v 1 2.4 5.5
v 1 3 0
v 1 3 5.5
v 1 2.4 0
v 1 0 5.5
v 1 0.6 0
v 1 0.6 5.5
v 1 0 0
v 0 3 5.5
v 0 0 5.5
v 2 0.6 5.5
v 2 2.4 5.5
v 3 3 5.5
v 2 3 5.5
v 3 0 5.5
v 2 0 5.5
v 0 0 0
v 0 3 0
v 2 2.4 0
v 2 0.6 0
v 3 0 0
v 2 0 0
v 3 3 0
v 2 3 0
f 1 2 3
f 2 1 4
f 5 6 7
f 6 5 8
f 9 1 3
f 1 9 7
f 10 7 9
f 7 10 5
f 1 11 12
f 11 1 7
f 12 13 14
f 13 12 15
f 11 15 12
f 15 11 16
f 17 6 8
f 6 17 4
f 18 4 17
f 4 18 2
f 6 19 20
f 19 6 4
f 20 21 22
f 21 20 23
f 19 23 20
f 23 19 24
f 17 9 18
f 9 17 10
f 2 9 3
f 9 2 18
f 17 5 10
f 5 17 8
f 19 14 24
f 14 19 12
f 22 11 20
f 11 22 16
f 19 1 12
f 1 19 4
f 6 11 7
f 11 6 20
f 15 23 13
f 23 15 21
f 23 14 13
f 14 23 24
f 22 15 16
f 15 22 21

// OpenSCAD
// file: ../lib/led-holder.scad
// SPDX-FileCopyrightText: 2022-2024 Rafael G. Martins <rafael@rafaelmartins.eng.br>
// SPDX-License-Identifier: CERN-OHL-S-2.0

module led_holder(height) {
    led_width = 1.8;
    led_length = 1;
    led_margin = 1;

    width_ = 3;
    length_ = 2 * led_margin + led_length;

    cube([led_margin, width_, height]);
    translate([led_margin, (width_ - led_width) / 2, 0])
        cube([led_length, led_width, height]);
    translate([length_ - led_margin, 0, 0])
        cube([led_margin, width_, height]);
}
// file: settings.scad
// SPDX-FileCopyrightText: 2022-2024 Rafael G. Martins <rafael@rafaelmartins.eng.br>
// SPDX-License-Identifier: CERN-OHL-S-2.0

thickness = 2;

pcb_width = 84.582;
pcb_length = 36.322;
pcb_screw1_x = 2.921;
pcb_screw1_y = pcb_length - 5.207 - 12.192;
pcb_screw2_x = pcb_screw1_x + 17.018;
pcb_screw2_y = pcb_screw1_y + 12.192;
pcb_screw3_x = pcb_screw2_x + 22.352;
pcb_screw3_y = pcb_screw2_y;
pcb_screw_base_height = 8;
pcb_screw_base_d = 5;
pcb_screw_d = 2;
pcb_padding_x = thickness + 0.5;
pcb_padding_y = thickness + 1;

screw_d = 2;
screw_h = 7;

usb_height = 4.4;
usb_width = 8.2;
usb_distance_x = pcb_padding_x + 19.939 - usb_width / 2;
usb_distance_z = thickness + pcb_screw_base_height + 1.6 - 0.1;

button0_x = 8.763;
button0_y = 6.985;
button_d = 10;
button_distance = 22.352;

led_width = 1.8;
led_length = 1;
led_margin = 1;
led_x = button0_x + 3 * button_distance;
led_y = 5.207 + 12.192;
led_d = 3.4;

gap = 0;

width = pcb_width + 2 * pcb_padding_x;
length = pcb_length + 2 * pcb_padding_y;
height = usb_distance_z + usb_height + 0.8 + thickness;
// main file
// SPDX-FileCopyrightText: 2022-2024 Rafael G. Martins <rafael@rafaelmartins.eng.br>
// SPDX-License-Identifier: CERN-OHL-S-2.0

include <settings.scad>
include <../lib/led-holder.scad>

led_holder(pcb_screw_base_height - 2.5);
